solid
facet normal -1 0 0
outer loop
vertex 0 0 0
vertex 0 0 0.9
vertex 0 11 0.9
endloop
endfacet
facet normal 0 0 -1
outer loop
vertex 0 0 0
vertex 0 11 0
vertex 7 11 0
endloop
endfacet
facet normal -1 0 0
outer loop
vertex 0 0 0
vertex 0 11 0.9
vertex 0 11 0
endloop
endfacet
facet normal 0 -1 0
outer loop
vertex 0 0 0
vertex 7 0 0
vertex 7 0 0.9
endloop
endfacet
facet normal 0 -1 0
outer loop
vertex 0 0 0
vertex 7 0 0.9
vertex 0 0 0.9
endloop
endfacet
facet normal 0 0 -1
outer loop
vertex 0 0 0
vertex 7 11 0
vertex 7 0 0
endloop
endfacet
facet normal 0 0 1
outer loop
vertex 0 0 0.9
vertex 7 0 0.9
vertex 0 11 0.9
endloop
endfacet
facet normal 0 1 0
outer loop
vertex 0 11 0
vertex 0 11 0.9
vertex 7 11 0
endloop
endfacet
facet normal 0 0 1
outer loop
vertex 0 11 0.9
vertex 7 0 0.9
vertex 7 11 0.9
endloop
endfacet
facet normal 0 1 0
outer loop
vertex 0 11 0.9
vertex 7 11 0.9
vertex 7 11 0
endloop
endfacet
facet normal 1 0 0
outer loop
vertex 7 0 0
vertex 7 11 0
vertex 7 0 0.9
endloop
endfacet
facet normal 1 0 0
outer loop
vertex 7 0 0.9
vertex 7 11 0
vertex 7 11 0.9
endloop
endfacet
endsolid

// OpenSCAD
/* Warning, this is a very basic generator with a lot of approximation 
input data : [VQFN, QGA, 7x11x0.9mm, 60, , A, C04-01276A]
generated by com.zoubworld.electronics.cad.model3d.Basic
Date : Sun Feb 15 10:50:49 CET 2026
*/

//body
color("black")
translate([0,0,0])
cube([7.0,11.0,0.9], center=false);
